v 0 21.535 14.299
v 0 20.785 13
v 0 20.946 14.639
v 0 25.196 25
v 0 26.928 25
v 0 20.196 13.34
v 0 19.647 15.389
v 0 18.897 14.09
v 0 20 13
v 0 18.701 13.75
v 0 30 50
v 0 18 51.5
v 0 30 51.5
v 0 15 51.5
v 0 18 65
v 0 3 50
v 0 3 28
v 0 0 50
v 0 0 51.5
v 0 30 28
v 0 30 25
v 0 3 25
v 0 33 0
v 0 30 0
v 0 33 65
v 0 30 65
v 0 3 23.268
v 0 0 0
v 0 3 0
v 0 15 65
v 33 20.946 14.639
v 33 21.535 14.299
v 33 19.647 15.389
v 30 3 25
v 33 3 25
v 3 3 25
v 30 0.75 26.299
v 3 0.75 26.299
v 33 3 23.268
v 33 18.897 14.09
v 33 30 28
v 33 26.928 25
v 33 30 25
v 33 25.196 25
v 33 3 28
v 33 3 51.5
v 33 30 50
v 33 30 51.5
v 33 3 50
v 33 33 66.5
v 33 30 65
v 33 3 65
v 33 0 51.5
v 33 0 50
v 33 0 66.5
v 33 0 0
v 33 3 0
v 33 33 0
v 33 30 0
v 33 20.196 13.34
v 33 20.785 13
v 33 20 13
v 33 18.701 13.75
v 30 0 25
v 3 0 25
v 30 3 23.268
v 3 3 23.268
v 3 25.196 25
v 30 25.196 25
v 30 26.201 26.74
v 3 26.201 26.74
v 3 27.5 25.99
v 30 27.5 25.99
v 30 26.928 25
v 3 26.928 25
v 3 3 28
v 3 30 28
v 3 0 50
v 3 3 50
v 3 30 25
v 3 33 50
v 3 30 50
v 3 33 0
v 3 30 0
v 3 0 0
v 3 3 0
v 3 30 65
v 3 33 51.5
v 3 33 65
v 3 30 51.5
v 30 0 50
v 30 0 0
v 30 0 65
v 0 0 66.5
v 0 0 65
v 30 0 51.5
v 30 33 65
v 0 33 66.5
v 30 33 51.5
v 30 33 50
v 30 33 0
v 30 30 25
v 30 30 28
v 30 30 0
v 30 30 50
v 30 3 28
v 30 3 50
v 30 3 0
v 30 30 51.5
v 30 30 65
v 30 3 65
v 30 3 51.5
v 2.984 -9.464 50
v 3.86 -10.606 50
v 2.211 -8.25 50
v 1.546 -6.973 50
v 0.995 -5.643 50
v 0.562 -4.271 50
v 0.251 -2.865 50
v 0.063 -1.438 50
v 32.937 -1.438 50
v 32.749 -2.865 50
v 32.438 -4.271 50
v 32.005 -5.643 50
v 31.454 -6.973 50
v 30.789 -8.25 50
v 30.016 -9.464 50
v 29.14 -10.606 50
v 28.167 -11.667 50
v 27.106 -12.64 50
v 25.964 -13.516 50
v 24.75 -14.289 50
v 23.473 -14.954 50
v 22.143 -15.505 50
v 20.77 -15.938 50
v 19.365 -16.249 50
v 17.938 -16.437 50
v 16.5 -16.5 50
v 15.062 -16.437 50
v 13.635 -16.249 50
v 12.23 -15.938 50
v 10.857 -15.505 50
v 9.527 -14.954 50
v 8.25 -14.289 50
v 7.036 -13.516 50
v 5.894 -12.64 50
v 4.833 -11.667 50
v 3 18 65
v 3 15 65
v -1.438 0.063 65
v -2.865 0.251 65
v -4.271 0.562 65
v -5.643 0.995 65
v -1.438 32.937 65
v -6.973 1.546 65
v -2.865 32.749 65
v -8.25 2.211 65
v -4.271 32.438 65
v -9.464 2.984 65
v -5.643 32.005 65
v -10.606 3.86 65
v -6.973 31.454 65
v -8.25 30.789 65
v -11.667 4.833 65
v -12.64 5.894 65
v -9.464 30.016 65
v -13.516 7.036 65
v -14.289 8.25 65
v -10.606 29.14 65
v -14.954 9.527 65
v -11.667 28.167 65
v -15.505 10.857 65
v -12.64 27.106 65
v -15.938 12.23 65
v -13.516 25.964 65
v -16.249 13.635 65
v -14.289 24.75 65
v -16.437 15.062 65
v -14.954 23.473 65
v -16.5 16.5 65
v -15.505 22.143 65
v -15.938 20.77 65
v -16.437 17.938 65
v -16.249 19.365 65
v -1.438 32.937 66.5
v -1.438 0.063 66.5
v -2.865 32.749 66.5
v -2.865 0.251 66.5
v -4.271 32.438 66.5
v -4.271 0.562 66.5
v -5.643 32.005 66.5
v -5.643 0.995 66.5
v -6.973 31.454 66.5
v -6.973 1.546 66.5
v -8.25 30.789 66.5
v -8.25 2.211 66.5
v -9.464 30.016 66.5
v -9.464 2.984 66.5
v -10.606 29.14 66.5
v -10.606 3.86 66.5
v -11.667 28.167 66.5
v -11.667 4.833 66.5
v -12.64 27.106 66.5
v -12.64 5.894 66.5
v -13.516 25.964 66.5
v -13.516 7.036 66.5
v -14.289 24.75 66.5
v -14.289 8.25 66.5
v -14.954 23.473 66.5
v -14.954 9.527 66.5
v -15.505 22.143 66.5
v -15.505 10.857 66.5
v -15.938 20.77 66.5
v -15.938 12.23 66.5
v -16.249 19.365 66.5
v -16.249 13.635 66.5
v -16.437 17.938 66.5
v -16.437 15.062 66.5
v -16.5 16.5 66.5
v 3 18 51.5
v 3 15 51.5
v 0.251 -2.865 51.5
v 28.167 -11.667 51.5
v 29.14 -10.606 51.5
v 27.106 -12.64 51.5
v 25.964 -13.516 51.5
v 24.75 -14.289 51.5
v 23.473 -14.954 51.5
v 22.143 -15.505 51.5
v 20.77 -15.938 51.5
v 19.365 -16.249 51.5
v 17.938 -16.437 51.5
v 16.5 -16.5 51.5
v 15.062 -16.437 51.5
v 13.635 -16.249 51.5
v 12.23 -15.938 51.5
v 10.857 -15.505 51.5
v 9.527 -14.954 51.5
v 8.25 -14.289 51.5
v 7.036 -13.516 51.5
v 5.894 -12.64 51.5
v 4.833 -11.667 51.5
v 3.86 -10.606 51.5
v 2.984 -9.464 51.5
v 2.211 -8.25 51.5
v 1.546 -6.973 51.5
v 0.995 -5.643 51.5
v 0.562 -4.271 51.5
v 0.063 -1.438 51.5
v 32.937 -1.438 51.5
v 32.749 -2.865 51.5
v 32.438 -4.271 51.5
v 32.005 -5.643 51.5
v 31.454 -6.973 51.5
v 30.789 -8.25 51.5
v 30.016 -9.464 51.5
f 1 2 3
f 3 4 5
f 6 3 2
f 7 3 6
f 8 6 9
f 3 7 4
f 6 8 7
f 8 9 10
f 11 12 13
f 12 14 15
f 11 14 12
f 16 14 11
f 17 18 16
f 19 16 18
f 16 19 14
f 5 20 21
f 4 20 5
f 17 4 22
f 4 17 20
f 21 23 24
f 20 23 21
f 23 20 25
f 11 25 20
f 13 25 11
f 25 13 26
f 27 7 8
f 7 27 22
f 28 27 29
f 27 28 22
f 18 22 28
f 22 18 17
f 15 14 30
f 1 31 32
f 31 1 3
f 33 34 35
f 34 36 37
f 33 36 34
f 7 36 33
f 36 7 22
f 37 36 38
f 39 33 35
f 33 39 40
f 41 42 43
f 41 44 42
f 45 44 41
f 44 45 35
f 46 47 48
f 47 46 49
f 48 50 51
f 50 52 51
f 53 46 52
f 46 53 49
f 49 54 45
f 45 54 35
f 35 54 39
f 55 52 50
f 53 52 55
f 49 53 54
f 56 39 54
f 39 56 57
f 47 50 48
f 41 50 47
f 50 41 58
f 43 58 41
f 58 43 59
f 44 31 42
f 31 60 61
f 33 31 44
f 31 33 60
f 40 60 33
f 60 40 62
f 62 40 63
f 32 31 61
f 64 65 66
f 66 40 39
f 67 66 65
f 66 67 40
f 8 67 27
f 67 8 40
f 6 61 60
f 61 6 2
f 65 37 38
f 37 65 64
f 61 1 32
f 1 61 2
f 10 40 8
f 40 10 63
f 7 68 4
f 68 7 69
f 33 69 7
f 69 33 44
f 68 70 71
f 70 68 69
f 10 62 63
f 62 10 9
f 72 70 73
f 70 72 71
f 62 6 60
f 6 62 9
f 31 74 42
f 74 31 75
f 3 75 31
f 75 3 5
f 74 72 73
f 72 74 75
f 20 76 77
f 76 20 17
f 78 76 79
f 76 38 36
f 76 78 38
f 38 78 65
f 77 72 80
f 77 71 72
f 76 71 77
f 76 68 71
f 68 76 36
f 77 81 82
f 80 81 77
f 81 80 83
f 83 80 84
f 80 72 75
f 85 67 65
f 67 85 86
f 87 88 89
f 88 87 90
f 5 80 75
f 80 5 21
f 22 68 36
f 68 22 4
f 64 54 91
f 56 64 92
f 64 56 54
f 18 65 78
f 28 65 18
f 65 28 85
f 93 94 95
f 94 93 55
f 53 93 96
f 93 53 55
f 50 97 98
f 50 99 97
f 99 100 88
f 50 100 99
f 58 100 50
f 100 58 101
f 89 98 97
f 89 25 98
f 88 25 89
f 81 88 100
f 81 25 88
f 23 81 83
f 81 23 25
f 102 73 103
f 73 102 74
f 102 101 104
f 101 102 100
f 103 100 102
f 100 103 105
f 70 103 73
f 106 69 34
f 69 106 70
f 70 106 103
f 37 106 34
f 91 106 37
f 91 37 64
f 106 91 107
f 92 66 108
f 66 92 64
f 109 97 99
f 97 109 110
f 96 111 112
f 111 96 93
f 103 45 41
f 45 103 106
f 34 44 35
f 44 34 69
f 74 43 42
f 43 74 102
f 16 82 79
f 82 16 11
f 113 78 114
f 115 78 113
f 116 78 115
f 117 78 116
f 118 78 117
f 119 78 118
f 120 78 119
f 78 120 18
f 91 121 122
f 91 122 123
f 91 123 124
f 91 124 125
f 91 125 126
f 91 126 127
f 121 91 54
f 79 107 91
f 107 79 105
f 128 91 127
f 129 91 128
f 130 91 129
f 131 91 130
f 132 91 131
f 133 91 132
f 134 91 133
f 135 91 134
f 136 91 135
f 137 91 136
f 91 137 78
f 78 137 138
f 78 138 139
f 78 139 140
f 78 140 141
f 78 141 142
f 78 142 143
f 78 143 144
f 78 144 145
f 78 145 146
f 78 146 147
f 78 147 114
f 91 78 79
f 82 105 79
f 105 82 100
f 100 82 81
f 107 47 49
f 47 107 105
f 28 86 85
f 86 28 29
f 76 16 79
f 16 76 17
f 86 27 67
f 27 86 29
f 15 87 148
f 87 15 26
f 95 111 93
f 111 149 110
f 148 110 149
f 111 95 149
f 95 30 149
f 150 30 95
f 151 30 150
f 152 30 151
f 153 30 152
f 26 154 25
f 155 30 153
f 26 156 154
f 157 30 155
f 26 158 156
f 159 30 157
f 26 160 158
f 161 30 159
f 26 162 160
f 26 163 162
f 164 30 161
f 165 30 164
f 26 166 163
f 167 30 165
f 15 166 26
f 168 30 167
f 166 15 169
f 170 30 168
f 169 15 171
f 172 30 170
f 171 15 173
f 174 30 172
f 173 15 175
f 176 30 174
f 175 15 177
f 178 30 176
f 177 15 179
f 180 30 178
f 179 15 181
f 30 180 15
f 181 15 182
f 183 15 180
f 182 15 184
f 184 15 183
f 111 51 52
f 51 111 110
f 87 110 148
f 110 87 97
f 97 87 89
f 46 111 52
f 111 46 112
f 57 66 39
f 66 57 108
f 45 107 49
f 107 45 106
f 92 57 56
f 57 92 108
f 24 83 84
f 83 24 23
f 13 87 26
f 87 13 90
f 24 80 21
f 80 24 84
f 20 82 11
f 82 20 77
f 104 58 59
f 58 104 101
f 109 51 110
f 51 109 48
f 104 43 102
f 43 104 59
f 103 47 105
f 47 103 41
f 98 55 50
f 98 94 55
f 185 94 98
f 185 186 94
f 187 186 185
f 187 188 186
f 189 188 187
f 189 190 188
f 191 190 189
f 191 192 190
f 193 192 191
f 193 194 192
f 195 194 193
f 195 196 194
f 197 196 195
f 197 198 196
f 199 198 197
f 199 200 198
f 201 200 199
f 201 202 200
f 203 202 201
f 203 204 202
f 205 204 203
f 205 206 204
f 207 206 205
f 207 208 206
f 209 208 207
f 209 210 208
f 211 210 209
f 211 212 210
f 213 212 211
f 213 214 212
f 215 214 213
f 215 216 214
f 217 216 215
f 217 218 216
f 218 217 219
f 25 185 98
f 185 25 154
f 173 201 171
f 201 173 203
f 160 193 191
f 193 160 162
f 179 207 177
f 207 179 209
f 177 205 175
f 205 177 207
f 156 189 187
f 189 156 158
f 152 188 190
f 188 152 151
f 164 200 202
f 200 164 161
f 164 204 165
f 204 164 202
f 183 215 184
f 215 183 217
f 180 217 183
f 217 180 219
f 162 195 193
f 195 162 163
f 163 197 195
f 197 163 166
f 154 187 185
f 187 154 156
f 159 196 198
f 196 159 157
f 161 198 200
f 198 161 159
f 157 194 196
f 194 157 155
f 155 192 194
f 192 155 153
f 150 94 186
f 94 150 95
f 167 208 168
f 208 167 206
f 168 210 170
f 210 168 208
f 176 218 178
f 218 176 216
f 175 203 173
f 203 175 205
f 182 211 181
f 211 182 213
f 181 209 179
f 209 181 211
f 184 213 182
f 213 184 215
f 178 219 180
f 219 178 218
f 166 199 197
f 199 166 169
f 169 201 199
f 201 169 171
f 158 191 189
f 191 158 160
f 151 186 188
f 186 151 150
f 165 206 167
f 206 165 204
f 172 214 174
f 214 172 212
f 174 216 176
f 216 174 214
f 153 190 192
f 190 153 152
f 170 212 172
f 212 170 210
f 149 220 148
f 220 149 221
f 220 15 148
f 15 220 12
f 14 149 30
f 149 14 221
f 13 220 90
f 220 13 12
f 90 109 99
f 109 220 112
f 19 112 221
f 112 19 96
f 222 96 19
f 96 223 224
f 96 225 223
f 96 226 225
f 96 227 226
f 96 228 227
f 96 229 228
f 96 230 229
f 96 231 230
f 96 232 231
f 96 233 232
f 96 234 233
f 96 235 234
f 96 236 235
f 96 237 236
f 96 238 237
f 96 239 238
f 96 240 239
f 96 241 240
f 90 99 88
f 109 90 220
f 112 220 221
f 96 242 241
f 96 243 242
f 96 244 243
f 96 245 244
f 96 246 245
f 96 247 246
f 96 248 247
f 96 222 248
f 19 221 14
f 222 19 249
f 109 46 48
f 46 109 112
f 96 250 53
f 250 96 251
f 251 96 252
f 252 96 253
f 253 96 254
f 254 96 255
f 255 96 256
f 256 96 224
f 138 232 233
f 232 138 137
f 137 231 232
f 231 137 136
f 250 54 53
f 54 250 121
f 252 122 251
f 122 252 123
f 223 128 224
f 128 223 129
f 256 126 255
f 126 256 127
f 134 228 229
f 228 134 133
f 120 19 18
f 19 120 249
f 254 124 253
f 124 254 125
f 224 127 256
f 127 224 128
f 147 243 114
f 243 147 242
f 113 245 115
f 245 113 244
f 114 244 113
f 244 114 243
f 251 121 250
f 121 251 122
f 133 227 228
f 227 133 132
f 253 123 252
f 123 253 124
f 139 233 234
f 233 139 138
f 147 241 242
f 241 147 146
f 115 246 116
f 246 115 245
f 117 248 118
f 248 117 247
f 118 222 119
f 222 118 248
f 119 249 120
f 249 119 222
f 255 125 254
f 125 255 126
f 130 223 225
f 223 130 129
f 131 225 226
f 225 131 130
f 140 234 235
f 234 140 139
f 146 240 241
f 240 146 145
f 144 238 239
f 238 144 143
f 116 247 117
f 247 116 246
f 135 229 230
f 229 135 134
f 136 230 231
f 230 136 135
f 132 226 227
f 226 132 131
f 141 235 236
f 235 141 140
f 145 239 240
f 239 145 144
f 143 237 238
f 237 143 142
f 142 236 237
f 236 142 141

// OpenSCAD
MIN_FACET = 0.1;
MAX_ANGLE = 5;

SHORT_LEG = 50;
LONG_LEG = 65;

LEG_LENTH = 3;
LEG_WIDTH = 3;

TOP_Z_OFFSET = 65;
TOP_WIDTH = 33;
TOP_DEPTH = 33;
TOP_HEIGHT = 1.5;

MIDDLE_Z_OFFSET = 50;

$fs = MIN_FACET;  
$fa = MAX_ANGLE;    

module legs() {
	translated_leg([0, 0, 0]);
	translated_leg([30, 0, 0], LONG_LEG);
	translated_leg([0, 30, 0], LONG_LEG);
	translated_leg([30, 30, 0], LONG_LEG);
}

module composite_top() {
	top_cube();	
	top_cylinder();
}

module top_cube() {
	position = [0, 0, TOP_Z_OFFSET];
	dimensions = [TOP_WIDTH, TOP_DEPTH, TOP_HEIGHT];

	translate(position)
		cube(dimensions);
}

module top_cylinder() {
	position = [0, TOP_WIDTH/2, TOP_Z_OFFSET];

	translate(position) 
		cylinder(h=TOP_HEIGHT, r=TOP_WIDTH/2);
} 

module top_support() {
	color("blue")
		translated_leg([0, 15, 50], 15);
} 

module composite_middle() {
	middle_cube();
	middle_cylinder();
}

module middle_cube() {
	position = [0, 0, MIDDLE_Z_OFFSET];
	dimensions = [TOP_WIDTH, TOP_DEPTH, TOP_HEIGHT];

	translate(position) 
		cube(dimensions);
}

module middle_cylinder() {
	position = [TOP_WIDTH/2, 0, MIDDLE_Z_OFFSET];

	translate(position) 
		cylinder(h=TOP_HEIGHT, r=TOP_WIDTH/2);
}

module composite_cube(position, dimensions) {
	translate(position) 
		cube(dimensions);
}

module slanted_bottom() {
	translate([0, 0, 25]) rotate([-30, 0 , 0]) cube([33, 24, 1.5]);
	translate([0, 20, 13]) rotate([60, 0 , 0]) cube([33, 15, 1.5]);
	translate([0, 0, 25]) cube([3, 33, 3]);
	translate([30, 0, 25]) cube([3, 33, 3]);
}

module translated_leg(position, height=SHORT_LEG) {
	translate(position) 
		leg(height);		
}

module leg(height=SHORT_LEG) {
	cube([LEG_LENTH, LEG_WIDTH, height]);	
}

legs(); 
composite_top();
top_support();

// middle
composite_middle();

// bottom
 slanted_bottom();
